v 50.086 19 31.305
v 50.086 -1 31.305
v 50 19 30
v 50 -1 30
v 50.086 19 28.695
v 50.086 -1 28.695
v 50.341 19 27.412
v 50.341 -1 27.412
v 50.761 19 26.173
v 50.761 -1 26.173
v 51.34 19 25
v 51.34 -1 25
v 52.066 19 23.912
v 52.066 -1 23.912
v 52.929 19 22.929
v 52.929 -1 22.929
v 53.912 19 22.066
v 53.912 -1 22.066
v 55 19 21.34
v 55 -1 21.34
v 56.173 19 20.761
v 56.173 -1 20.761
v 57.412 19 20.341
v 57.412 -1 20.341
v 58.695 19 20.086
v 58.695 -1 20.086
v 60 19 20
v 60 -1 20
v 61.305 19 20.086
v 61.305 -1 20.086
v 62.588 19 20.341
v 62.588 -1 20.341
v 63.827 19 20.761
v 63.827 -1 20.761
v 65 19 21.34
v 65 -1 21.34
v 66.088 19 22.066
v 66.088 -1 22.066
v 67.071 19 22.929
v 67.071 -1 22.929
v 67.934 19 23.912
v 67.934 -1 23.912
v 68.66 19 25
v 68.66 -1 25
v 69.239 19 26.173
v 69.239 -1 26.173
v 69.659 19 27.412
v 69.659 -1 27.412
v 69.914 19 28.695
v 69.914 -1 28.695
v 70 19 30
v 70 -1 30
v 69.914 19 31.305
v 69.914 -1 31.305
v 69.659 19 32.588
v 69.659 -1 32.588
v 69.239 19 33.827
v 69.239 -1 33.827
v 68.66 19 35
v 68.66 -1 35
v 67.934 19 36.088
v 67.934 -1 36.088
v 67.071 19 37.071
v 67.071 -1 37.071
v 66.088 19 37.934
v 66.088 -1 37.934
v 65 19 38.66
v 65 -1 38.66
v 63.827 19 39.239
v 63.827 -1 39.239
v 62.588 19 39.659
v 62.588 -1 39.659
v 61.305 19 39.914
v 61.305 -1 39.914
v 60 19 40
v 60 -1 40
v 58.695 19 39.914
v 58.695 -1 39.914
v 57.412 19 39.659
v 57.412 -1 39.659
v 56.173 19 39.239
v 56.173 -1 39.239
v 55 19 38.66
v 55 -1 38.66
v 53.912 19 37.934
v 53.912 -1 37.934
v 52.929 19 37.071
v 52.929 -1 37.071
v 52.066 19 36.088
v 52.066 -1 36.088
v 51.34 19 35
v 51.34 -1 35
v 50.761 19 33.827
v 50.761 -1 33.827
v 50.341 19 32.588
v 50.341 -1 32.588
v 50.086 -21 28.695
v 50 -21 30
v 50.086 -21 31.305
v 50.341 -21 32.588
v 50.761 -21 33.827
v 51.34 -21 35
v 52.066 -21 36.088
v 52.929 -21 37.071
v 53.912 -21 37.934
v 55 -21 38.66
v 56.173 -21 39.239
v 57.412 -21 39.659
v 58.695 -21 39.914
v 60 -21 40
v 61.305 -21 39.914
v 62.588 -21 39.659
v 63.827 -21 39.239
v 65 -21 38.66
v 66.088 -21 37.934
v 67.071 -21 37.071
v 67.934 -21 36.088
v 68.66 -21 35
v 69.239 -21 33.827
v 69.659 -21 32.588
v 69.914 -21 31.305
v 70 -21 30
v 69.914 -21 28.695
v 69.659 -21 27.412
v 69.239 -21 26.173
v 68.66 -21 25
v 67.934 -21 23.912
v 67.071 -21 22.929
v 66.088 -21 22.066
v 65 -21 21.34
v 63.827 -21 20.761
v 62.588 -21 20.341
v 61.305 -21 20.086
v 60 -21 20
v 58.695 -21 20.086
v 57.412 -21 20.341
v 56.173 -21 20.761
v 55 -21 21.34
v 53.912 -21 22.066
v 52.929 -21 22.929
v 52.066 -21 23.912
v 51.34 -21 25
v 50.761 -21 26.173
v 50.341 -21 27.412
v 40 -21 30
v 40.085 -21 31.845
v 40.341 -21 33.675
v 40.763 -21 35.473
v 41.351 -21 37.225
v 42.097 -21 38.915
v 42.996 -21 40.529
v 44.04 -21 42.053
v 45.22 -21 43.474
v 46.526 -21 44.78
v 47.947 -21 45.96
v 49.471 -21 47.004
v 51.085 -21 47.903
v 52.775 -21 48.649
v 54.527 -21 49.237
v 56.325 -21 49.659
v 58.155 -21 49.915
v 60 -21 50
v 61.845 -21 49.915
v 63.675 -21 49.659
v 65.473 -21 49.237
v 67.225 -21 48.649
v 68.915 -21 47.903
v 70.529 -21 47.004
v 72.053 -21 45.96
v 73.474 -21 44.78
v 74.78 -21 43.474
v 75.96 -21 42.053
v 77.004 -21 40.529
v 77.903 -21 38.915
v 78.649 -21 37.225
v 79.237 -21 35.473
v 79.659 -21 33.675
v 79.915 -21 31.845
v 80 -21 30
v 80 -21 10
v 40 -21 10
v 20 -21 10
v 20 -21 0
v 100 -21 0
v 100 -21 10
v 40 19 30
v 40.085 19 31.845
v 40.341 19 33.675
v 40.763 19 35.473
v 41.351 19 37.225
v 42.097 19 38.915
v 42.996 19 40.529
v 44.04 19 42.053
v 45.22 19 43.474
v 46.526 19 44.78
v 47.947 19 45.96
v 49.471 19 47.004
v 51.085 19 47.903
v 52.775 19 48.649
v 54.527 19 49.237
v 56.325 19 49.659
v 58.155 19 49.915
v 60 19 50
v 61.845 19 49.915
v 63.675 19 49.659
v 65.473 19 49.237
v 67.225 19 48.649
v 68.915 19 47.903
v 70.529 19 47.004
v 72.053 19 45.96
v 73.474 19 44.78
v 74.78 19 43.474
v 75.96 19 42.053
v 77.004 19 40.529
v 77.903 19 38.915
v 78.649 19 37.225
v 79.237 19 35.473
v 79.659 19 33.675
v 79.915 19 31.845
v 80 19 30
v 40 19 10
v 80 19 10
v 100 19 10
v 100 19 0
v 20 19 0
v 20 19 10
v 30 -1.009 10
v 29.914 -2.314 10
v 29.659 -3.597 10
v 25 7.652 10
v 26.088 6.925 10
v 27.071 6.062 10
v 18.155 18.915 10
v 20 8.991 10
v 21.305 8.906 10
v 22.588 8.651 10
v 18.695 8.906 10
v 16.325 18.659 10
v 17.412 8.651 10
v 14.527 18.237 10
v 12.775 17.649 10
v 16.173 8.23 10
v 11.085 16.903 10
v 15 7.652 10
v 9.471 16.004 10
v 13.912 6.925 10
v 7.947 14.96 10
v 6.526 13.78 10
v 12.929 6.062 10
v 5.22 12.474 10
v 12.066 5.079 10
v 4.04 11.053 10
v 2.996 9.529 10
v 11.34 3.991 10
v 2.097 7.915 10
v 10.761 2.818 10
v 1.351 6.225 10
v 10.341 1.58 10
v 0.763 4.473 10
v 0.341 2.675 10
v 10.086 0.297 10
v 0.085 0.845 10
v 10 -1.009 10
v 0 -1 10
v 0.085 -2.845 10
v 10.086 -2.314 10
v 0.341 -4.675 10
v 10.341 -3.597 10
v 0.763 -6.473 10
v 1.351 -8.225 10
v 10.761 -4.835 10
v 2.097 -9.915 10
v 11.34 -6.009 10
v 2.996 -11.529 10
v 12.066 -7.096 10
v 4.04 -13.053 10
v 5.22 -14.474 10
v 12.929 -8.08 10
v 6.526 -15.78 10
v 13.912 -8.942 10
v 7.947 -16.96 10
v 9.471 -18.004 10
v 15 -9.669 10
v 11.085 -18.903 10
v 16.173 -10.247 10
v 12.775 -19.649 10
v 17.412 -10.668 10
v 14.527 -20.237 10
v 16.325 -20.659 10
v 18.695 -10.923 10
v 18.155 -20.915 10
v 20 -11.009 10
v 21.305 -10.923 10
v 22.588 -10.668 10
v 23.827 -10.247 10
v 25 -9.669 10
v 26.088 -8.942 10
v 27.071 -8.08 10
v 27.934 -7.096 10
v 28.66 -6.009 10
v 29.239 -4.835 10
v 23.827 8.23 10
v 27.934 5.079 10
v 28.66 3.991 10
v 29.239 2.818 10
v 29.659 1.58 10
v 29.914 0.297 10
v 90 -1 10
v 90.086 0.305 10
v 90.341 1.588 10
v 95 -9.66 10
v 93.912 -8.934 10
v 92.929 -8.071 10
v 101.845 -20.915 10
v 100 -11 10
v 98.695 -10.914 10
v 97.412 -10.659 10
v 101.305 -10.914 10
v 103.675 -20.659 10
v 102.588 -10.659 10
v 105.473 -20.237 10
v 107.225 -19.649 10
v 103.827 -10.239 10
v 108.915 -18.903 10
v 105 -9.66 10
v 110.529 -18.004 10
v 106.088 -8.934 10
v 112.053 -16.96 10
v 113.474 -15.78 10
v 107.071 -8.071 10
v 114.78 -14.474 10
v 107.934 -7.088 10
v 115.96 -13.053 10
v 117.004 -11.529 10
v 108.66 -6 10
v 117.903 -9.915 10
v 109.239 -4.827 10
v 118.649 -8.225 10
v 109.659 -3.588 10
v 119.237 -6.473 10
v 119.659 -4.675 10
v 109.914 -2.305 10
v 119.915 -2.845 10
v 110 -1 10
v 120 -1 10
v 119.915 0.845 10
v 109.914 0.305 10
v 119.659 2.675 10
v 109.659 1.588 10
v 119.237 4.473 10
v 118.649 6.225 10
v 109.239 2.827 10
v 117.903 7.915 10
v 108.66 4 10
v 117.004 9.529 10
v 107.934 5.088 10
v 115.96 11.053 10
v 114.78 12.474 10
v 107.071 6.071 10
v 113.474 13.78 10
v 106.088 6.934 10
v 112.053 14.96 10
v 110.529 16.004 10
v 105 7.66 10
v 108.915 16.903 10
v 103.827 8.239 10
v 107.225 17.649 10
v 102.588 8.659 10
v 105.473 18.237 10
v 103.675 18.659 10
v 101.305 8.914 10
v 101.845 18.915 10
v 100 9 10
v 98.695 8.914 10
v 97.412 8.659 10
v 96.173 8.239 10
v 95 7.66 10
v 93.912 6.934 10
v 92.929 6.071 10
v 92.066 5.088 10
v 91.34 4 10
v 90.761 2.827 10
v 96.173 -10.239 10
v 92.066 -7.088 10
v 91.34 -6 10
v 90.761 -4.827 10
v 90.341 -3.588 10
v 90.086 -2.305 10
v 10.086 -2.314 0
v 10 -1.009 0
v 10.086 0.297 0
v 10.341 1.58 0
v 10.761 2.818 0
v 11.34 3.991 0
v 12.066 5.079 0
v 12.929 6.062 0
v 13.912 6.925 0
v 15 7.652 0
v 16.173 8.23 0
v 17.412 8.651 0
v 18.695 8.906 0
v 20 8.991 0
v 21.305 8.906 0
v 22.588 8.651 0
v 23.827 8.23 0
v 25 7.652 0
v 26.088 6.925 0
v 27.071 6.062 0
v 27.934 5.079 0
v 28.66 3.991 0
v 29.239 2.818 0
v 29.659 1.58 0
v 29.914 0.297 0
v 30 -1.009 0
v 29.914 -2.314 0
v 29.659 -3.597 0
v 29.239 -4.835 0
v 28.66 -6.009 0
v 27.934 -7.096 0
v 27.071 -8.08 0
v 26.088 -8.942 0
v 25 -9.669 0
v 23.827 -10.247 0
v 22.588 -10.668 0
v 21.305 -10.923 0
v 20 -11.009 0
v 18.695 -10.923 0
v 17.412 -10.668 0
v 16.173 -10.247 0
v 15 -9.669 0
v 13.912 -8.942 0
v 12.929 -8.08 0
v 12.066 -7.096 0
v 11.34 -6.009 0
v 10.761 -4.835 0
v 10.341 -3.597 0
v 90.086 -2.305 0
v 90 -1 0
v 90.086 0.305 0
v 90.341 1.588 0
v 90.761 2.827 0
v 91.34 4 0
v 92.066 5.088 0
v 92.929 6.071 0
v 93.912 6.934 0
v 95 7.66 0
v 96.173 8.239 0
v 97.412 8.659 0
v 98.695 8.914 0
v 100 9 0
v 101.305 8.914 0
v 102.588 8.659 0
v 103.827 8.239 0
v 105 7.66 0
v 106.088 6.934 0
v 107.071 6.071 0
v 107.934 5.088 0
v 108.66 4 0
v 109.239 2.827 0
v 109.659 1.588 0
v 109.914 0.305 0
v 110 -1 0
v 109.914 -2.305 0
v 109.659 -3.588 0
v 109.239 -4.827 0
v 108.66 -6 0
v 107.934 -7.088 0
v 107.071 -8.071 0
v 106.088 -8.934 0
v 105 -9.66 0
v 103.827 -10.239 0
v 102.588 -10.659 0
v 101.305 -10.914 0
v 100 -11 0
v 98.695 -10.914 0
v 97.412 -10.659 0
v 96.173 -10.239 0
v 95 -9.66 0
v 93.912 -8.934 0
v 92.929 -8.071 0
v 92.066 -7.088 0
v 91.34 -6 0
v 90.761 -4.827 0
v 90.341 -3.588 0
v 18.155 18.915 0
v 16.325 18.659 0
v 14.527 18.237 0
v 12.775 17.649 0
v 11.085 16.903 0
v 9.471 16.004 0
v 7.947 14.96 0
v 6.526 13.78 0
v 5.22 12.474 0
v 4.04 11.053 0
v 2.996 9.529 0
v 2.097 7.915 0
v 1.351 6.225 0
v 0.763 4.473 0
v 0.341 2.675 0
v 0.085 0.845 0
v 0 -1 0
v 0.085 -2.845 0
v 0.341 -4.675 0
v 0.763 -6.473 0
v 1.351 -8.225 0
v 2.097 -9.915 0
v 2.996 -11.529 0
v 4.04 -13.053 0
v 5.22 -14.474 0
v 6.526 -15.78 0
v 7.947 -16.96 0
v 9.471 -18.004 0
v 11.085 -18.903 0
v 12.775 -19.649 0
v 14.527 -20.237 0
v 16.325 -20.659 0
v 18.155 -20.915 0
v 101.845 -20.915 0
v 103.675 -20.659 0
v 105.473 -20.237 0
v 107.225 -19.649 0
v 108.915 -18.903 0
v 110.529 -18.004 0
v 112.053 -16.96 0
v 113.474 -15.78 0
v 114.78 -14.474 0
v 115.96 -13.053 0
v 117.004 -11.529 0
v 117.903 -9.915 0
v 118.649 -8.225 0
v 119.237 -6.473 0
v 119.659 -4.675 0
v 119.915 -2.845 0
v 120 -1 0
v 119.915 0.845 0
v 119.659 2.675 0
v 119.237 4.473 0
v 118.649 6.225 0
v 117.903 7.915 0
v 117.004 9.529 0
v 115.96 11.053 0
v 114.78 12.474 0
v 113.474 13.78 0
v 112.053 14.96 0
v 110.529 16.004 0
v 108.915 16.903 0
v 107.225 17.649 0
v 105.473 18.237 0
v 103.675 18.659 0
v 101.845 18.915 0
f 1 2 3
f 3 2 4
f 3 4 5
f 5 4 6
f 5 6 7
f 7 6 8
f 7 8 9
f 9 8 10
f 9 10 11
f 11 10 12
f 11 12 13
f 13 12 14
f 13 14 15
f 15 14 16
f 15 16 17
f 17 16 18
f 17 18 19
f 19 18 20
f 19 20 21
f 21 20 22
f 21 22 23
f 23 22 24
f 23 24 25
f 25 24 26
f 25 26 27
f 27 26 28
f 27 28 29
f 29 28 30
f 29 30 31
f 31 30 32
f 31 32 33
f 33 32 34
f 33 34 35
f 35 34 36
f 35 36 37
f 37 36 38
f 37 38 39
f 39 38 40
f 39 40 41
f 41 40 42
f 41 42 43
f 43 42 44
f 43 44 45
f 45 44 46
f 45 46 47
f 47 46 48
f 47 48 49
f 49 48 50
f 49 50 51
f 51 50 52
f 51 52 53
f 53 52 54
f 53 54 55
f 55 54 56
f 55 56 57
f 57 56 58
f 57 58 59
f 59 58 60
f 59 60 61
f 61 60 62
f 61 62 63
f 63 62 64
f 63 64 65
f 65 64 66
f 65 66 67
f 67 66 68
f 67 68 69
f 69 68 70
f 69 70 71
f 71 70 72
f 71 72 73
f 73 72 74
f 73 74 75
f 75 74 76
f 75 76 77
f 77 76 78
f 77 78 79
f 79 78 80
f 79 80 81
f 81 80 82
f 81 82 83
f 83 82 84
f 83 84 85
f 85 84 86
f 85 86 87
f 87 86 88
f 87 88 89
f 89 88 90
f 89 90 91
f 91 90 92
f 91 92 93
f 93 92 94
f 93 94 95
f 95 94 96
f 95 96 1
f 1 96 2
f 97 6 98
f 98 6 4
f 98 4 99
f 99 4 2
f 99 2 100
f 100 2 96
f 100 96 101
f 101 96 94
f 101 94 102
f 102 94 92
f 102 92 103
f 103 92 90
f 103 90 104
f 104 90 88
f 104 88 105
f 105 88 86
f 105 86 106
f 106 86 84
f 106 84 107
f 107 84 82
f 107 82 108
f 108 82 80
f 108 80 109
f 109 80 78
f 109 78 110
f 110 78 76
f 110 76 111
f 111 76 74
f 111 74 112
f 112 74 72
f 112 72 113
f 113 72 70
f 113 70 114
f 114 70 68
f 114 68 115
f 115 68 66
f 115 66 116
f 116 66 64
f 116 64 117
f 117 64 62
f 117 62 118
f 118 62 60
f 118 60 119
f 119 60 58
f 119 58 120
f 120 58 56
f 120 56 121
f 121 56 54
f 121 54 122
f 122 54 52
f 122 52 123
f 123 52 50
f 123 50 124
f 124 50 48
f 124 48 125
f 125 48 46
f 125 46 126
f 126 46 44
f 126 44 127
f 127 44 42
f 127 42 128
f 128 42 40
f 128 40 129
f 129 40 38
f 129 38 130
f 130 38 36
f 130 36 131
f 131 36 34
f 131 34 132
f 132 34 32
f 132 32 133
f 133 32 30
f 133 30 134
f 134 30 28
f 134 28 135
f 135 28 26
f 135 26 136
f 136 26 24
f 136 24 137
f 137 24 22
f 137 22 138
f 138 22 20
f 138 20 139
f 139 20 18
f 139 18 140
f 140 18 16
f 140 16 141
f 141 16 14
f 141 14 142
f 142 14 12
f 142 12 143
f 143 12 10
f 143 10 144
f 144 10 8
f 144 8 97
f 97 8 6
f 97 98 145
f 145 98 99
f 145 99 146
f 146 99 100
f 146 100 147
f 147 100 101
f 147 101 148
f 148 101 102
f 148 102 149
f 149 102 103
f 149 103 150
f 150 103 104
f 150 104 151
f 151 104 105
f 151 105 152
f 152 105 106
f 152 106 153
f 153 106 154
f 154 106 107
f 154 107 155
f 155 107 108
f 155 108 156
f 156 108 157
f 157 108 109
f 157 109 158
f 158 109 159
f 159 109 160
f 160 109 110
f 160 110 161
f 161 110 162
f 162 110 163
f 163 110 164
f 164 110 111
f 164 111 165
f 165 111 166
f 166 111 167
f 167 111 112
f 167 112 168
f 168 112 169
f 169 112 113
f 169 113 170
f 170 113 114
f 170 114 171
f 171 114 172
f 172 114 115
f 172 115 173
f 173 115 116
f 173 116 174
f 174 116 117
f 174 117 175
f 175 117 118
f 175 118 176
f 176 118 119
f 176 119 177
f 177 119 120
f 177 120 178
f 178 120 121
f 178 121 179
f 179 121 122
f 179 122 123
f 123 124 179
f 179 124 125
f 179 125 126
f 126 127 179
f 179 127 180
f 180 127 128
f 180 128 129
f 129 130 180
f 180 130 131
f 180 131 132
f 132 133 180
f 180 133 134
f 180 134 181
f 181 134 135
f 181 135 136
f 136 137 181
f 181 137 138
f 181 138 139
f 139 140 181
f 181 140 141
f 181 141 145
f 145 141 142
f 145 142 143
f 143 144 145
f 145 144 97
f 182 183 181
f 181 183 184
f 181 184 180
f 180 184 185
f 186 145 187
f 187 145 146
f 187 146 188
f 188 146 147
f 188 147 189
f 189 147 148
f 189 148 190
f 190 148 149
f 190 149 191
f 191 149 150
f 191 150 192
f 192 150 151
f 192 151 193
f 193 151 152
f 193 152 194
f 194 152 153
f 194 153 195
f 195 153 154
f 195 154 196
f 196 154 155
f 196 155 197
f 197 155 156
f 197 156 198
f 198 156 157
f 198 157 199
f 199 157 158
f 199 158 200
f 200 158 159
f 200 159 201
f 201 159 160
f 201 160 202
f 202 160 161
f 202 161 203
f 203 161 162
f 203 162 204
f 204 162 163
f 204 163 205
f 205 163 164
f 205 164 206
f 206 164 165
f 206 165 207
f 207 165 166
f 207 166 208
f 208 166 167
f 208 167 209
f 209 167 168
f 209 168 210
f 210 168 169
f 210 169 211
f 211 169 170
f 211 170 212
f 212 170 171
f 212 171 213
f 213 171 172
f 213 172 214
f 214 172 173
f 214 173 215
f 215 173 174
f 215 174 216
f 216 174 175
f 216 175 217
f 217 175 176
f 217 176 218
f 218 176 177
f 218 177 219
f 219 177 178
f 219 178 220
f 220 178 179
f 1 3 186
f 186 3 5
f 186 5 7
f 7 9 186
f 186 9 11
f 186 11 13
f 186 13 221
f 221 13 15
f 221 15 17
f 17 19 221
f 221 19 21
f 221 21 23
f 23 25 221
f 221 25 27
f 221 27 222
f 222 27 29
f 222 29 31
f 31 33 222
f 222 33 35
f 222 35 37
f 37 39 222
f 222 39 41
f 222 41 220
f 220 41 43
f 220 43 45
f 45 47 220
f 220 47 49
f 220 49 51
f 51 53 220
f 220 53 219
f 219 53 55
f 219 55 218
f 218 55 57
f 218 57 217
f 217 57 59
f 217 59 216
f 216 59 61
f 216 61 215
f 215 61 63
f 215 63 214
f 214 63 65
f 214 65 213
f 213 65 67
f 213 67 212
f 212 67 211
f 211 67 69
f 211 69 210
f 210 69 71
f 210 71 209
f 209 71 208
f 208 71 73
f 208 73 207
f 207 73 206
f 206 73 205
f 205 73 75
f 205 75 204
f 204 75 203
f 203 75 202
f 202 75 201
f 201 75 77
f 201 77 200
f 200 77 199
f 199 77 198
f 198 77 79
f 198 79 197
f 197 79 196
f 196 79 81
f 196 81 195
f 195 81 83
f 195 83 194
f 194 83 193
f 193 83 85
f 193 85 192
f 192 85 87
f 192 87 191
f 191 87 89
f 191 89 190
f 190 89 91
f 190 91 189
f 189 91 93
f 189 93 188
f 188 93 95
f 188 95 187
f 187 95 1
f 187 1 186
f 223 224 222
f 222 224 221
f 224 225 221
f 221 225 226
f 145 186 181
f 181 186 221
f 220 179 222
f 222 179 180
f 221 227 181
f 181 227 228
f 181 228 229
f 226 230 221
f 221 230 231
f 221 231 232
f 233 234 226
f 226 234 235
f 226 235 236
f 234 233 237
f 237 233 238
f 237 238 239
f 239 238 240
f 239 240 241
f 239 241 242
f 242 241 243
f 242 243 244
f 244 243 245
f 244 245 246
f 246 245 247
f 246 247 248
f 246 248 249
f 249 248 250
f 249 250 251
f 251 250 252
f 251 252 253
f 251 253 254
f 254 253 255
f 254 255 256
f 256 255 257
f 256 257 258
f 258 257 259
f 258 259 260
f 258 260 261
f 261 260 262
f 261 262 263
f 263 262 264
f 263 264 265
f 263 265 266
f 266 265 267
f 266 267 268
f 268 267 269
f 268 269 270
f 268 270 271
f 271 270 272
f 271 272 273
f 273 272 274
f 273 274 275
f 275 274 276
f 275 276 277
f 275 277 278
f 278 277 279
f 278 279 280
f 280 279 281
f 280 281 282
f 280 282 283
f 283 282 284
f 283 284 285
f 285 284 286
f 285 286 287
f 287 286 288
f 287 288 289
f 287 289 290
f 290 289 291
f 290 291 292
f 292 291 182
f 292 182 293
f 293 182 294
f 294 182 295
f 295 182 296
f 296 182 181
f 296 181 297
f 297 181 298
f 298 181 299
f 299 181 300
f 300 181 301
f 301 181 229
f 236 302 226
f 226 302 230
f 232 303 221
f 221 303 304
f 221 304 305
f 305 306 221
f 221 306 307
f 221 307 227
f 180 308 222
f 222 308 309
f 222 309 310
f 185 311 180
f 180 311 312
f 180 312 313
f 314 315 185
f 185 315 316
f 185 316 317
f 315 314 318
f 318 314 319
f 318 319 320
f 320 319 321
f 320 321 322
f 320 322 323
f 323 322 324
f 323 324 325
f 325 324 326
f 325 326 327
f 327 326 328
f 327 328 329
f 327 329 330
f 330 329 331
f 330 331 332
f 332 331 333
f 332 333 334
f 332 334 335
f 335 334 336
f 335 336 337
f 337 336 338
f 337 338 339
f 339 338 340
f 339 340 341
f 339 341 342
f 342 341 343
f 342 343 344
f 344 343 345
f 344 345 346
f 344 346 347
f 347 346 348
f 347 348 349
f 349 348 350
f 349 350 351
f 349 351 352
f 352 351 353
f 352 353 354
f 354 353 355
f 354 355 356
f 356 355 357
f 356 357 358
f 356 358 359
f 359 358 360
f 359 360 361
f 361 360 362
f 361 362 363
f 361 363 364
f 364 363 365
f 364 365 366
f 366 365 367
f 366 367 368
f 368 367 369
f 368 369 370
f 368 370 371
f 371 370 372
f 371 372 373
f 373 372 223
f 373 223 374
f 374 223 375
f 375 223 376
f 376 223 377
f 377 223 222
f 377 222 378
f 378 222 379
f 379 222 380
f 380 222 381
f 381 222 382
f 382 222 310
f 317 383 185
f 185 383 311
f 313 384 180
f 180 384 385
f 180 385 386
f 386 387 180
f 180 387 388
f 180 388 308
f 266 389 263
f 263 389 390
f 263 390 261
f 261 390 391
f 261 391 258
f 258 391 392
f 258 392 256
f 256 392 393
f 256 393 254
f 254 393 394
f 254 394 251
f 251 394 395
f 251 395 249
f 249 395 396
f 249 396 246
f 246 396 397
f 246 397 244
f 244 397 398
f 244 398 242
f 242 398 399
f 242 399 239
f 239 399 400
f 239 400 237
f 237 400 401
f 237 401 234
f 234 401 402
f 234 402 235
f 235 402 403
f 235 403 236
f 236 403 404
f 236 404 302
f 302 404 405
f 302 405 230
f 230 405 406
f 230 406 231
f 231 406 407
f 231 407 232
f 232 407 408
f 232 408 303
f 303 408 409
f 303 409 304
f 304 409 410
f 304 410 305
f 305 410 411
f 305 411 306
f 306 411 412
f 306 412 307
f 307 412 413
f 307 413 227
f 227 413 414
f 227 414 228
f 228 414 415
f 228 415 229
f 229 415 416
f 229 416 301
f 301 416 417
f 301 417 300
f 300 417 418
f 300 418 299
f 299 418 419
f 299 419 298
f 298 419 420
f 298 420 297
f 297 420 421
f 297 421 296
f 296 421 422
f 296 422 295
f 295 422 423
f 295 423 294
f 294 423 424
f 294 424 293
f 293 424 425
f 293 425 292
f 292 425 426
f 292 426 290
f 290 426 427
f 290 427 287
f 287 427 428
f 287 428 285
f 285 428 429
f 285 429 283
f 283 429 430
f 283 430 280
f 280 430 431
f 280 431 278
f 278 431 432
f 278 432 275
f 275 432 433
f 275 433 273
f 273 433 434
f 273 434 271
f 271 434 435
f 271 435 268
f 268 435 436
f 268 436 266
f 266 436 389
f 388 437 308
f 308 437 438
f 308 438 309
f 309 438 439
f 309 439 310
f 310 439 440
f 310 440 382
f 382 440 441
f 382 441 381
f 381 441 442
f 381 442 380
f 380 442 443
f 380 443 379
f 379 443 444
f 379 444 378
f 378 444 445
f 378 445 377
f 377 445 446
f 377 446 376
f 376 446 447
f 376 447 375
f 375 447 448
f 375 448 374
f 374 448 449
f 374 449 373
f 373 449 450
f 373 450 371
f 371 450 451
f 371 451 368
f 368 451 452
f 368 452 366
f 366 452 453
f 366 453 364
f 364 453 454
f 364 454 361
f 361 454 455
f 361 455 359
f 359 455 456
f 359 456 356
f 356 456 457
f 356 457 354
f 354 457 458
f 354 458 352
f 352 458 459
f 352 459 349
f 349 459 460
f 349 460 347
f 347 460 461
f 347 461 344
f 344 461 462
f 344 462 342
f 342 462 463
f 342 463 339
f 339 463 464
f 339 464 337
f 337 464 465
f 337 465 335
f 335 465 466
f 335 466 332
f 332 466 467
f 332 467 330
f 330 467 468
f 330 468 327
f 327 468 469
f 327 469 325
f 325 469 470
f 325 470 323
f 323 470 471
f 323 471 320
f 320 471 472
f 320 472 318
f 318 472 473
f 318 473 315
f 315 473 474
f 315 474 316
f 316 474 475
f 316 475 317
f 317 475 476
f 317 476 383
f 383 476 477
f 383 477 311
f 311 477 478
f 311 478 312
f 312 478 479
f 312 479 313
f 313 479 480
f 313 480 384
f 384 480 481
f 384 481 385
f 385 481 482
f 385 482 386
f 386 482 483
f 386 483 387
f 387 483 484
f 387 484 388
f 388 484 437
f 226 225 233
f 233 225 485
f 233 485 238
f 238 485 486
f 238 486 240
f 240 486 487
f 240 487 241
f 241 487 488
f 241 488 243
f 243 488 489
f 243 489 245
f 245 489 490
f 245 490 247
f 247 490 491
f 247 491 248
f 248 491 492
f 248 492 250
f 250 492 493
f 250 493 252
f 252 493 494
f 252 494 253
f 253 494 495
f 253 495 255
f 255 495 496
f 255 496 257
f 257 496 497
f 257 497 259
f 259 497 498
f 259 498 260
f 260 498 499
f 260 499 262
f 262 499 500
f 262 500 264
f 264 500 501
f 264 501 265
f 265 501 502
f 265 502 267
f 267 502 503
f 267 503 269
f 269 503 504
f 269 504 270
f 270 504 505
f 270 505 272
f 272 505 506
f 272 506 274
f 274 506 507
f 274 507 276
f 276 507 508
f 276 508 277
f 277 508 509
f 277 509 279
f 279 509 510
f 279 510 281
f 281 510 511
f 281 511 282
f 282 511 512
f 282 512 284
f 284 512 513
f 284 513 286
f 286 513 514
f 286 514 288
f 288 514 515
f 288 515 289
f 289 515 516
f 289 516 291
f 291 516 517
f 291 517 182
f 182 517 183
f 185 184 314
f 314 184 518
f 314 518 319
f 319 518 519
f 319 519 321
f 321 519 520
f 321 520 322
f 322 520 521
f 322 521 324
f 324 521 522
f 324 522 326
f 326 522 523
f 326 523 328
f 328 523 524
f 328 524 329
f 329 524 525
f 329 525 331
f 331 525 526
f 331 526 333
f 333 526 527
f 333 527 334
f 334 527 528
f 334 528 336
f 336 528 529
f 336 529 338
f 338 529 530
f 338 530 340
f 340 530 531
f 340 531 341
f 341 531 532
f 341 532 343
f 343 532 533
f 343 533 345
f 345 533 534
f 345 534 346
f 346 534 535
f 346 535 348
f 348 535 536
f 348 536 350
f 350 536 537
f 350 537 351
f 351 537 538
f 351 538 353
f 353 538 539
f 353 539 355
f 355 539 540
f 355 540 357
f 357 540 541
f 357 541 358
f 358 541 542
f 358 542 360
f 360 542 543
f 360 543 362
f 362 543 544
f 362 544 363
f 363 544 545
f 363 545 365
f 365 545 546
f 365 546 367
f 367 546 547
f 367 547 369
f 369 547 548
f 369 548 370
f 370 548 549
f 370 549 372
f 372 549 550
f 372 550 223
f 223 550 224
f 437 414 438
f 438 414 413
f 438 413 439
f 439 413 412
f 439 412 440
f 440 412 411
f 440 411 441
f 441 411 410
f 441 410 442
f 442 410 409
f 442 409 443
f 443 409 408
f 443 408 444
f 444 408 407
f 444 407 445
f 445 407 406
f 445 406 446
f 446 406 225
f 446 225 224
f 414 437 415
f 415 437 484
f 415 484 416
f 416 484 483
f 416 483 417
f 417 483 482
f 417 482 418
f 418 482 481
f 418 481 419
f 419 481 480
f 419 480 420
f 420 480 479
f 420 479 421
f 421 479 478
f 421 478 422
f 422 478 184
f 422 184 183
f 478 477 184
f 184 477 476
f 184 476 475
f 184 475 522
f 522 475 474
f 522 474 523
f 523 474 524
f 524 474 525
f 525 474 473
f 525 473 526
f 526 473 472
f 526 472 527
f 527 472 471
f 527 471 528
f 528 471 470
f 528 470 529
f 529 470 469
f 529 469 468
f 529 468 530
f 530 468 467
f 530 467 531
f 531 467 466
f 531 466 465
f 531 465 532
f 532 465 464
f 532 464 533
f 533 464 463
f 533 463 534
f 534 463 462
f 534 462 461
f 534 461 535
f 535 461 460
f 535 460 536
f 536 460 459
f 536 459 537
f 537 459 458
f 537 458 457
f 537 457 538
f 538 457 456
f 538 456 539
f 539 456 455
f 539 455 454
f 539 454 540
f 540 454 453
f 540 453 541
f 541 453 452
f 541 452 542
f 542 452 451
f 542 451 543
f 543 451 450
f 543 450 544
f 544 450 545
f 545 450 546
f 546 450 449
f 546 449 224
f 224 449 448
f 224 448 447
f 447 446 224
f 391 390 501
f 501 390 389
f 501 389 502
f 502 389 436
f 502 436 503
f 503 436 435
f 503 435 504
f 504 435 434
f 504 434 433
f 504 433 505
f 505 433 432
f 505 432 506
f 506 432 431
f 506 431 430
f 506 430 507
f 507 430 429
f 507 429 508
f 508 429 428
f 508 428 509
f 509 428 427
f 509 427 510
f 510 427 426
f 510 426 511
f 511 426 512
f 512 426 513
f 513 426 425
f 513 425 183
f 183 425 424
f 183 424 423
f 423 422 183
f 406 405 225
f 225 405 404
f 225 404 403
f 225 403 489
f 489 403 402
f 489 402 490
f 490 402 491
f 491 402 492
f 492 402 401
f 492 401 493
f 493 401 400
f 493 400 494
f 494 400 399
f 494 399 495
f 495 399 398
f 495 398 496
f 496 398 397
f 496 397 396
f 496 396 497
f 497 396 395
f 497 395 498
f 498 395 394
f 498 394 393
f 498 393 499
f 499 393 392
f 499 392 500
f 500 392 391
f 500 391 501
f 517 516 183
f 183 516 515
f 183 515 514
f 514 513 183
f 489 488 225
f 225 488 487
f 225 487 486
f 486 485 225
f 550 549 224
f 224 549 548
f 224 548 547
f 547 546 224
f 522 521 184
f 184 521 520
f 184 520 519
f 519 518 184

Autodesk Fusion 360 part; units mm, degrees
sketch "Sketch1" plane through (0, 0, 0) normal (0, 0, 1) x (1, 0, 0)
  line L0 (20, 19) -> (100, 19)
  line L1 (120, -1) -> (120, -1)
  line L2 (100, -21) -> (20, -21)
  line L3 (0, -1) -> (0, -1)
  line L4 (20.2852, -21) -> (100.2852, -21)
  line L5 (20, 19) -> (100, 19)
  arc A0 (20, 19) -> (0, -1) centre (20, -1) ccw
  arc A1 (0, -1) -> (20, -21) centre (20, -1) ccw
  arc A2 (120, -1) -> (100, 19) centre (100, -1) ccw
  arc A3 (100, -21) -> (120, -1) centre (100, -1) ccw
  circle A4 centre (20, -1.0086) radius 10
  circle A5 centre (100, -1) radius 10
  point P0 (0, 19)
  point P1 (120, 19)
  point P2 (0, -21)
  dimension "d1" = 120
  dimension "d2" = 40
  dimension "d5" = 20
  dimension "d6" = 20
  dimension "d7" = 20
  dimension "d8" = 20
  dimension "d9" = 20
  dimension "d10" = 20
extrude "Extrude1" add sketch "Sketch1" along normal blind 10
sketch "Sketch2" plane through (0, 0, 10) normal (0, 0, 1) x (-1, 0, 0)
  circle A0 centre (-100, 1) radius 10
  circle A1 centre (-20, 1.0086) radius 10
  line L0 (-20, 21) -> (-100, 21)
  arc A2 (-100, 21) -> (-100, -19) centre (-100, 1) ccw
  line L1 (-100, -19) -> (-20, -19)
  arc A3 (-20, -19) -> (-20, 21) centre (-20, 1) ccw
  line L2 (-40, -19) -> (-80, -19)
  line L3 (-80, -19) -> (-80, 21)
  line L4 (-80, 21) -> (-40, 21)
  line L5 (-40, 21) -> (-40, -19)
  dimension "d13" = 40
extrude "Extrude2" add sketch "Sketch2" along normal blind 40 contours L0 L1 L2 L3 L4 L5
fillet "Fillet1" radius 20 2 edges at (40, -1, 50) (80, -1, 50)
sketch "Sketch3" plane through (0, -21, 0) normal (0, -1, 0) x (1, 0, 0)
  arc A0 (80, 30) -> (40, 30) centre (60, 30) ccw
  line L0 (40, 30) -> (40, 10)
  line L1 (40, 10) -> (20, 10)
  line L2 (20, 10) -> (20, 0)
  line L3 (20, 0) -> (100, 0)
  line L4 (100, 0) -> (100, 10)
  line L5 (100, 10) -> (80, 10)
  line L6 (80, 10) -> (80, 30)
  circle A1 centre (60, 30) radius 10
  dimension "d18" = 20
extrude "Extrude3" cut sketch "Sketch3" against normal blind 40 contours A1
